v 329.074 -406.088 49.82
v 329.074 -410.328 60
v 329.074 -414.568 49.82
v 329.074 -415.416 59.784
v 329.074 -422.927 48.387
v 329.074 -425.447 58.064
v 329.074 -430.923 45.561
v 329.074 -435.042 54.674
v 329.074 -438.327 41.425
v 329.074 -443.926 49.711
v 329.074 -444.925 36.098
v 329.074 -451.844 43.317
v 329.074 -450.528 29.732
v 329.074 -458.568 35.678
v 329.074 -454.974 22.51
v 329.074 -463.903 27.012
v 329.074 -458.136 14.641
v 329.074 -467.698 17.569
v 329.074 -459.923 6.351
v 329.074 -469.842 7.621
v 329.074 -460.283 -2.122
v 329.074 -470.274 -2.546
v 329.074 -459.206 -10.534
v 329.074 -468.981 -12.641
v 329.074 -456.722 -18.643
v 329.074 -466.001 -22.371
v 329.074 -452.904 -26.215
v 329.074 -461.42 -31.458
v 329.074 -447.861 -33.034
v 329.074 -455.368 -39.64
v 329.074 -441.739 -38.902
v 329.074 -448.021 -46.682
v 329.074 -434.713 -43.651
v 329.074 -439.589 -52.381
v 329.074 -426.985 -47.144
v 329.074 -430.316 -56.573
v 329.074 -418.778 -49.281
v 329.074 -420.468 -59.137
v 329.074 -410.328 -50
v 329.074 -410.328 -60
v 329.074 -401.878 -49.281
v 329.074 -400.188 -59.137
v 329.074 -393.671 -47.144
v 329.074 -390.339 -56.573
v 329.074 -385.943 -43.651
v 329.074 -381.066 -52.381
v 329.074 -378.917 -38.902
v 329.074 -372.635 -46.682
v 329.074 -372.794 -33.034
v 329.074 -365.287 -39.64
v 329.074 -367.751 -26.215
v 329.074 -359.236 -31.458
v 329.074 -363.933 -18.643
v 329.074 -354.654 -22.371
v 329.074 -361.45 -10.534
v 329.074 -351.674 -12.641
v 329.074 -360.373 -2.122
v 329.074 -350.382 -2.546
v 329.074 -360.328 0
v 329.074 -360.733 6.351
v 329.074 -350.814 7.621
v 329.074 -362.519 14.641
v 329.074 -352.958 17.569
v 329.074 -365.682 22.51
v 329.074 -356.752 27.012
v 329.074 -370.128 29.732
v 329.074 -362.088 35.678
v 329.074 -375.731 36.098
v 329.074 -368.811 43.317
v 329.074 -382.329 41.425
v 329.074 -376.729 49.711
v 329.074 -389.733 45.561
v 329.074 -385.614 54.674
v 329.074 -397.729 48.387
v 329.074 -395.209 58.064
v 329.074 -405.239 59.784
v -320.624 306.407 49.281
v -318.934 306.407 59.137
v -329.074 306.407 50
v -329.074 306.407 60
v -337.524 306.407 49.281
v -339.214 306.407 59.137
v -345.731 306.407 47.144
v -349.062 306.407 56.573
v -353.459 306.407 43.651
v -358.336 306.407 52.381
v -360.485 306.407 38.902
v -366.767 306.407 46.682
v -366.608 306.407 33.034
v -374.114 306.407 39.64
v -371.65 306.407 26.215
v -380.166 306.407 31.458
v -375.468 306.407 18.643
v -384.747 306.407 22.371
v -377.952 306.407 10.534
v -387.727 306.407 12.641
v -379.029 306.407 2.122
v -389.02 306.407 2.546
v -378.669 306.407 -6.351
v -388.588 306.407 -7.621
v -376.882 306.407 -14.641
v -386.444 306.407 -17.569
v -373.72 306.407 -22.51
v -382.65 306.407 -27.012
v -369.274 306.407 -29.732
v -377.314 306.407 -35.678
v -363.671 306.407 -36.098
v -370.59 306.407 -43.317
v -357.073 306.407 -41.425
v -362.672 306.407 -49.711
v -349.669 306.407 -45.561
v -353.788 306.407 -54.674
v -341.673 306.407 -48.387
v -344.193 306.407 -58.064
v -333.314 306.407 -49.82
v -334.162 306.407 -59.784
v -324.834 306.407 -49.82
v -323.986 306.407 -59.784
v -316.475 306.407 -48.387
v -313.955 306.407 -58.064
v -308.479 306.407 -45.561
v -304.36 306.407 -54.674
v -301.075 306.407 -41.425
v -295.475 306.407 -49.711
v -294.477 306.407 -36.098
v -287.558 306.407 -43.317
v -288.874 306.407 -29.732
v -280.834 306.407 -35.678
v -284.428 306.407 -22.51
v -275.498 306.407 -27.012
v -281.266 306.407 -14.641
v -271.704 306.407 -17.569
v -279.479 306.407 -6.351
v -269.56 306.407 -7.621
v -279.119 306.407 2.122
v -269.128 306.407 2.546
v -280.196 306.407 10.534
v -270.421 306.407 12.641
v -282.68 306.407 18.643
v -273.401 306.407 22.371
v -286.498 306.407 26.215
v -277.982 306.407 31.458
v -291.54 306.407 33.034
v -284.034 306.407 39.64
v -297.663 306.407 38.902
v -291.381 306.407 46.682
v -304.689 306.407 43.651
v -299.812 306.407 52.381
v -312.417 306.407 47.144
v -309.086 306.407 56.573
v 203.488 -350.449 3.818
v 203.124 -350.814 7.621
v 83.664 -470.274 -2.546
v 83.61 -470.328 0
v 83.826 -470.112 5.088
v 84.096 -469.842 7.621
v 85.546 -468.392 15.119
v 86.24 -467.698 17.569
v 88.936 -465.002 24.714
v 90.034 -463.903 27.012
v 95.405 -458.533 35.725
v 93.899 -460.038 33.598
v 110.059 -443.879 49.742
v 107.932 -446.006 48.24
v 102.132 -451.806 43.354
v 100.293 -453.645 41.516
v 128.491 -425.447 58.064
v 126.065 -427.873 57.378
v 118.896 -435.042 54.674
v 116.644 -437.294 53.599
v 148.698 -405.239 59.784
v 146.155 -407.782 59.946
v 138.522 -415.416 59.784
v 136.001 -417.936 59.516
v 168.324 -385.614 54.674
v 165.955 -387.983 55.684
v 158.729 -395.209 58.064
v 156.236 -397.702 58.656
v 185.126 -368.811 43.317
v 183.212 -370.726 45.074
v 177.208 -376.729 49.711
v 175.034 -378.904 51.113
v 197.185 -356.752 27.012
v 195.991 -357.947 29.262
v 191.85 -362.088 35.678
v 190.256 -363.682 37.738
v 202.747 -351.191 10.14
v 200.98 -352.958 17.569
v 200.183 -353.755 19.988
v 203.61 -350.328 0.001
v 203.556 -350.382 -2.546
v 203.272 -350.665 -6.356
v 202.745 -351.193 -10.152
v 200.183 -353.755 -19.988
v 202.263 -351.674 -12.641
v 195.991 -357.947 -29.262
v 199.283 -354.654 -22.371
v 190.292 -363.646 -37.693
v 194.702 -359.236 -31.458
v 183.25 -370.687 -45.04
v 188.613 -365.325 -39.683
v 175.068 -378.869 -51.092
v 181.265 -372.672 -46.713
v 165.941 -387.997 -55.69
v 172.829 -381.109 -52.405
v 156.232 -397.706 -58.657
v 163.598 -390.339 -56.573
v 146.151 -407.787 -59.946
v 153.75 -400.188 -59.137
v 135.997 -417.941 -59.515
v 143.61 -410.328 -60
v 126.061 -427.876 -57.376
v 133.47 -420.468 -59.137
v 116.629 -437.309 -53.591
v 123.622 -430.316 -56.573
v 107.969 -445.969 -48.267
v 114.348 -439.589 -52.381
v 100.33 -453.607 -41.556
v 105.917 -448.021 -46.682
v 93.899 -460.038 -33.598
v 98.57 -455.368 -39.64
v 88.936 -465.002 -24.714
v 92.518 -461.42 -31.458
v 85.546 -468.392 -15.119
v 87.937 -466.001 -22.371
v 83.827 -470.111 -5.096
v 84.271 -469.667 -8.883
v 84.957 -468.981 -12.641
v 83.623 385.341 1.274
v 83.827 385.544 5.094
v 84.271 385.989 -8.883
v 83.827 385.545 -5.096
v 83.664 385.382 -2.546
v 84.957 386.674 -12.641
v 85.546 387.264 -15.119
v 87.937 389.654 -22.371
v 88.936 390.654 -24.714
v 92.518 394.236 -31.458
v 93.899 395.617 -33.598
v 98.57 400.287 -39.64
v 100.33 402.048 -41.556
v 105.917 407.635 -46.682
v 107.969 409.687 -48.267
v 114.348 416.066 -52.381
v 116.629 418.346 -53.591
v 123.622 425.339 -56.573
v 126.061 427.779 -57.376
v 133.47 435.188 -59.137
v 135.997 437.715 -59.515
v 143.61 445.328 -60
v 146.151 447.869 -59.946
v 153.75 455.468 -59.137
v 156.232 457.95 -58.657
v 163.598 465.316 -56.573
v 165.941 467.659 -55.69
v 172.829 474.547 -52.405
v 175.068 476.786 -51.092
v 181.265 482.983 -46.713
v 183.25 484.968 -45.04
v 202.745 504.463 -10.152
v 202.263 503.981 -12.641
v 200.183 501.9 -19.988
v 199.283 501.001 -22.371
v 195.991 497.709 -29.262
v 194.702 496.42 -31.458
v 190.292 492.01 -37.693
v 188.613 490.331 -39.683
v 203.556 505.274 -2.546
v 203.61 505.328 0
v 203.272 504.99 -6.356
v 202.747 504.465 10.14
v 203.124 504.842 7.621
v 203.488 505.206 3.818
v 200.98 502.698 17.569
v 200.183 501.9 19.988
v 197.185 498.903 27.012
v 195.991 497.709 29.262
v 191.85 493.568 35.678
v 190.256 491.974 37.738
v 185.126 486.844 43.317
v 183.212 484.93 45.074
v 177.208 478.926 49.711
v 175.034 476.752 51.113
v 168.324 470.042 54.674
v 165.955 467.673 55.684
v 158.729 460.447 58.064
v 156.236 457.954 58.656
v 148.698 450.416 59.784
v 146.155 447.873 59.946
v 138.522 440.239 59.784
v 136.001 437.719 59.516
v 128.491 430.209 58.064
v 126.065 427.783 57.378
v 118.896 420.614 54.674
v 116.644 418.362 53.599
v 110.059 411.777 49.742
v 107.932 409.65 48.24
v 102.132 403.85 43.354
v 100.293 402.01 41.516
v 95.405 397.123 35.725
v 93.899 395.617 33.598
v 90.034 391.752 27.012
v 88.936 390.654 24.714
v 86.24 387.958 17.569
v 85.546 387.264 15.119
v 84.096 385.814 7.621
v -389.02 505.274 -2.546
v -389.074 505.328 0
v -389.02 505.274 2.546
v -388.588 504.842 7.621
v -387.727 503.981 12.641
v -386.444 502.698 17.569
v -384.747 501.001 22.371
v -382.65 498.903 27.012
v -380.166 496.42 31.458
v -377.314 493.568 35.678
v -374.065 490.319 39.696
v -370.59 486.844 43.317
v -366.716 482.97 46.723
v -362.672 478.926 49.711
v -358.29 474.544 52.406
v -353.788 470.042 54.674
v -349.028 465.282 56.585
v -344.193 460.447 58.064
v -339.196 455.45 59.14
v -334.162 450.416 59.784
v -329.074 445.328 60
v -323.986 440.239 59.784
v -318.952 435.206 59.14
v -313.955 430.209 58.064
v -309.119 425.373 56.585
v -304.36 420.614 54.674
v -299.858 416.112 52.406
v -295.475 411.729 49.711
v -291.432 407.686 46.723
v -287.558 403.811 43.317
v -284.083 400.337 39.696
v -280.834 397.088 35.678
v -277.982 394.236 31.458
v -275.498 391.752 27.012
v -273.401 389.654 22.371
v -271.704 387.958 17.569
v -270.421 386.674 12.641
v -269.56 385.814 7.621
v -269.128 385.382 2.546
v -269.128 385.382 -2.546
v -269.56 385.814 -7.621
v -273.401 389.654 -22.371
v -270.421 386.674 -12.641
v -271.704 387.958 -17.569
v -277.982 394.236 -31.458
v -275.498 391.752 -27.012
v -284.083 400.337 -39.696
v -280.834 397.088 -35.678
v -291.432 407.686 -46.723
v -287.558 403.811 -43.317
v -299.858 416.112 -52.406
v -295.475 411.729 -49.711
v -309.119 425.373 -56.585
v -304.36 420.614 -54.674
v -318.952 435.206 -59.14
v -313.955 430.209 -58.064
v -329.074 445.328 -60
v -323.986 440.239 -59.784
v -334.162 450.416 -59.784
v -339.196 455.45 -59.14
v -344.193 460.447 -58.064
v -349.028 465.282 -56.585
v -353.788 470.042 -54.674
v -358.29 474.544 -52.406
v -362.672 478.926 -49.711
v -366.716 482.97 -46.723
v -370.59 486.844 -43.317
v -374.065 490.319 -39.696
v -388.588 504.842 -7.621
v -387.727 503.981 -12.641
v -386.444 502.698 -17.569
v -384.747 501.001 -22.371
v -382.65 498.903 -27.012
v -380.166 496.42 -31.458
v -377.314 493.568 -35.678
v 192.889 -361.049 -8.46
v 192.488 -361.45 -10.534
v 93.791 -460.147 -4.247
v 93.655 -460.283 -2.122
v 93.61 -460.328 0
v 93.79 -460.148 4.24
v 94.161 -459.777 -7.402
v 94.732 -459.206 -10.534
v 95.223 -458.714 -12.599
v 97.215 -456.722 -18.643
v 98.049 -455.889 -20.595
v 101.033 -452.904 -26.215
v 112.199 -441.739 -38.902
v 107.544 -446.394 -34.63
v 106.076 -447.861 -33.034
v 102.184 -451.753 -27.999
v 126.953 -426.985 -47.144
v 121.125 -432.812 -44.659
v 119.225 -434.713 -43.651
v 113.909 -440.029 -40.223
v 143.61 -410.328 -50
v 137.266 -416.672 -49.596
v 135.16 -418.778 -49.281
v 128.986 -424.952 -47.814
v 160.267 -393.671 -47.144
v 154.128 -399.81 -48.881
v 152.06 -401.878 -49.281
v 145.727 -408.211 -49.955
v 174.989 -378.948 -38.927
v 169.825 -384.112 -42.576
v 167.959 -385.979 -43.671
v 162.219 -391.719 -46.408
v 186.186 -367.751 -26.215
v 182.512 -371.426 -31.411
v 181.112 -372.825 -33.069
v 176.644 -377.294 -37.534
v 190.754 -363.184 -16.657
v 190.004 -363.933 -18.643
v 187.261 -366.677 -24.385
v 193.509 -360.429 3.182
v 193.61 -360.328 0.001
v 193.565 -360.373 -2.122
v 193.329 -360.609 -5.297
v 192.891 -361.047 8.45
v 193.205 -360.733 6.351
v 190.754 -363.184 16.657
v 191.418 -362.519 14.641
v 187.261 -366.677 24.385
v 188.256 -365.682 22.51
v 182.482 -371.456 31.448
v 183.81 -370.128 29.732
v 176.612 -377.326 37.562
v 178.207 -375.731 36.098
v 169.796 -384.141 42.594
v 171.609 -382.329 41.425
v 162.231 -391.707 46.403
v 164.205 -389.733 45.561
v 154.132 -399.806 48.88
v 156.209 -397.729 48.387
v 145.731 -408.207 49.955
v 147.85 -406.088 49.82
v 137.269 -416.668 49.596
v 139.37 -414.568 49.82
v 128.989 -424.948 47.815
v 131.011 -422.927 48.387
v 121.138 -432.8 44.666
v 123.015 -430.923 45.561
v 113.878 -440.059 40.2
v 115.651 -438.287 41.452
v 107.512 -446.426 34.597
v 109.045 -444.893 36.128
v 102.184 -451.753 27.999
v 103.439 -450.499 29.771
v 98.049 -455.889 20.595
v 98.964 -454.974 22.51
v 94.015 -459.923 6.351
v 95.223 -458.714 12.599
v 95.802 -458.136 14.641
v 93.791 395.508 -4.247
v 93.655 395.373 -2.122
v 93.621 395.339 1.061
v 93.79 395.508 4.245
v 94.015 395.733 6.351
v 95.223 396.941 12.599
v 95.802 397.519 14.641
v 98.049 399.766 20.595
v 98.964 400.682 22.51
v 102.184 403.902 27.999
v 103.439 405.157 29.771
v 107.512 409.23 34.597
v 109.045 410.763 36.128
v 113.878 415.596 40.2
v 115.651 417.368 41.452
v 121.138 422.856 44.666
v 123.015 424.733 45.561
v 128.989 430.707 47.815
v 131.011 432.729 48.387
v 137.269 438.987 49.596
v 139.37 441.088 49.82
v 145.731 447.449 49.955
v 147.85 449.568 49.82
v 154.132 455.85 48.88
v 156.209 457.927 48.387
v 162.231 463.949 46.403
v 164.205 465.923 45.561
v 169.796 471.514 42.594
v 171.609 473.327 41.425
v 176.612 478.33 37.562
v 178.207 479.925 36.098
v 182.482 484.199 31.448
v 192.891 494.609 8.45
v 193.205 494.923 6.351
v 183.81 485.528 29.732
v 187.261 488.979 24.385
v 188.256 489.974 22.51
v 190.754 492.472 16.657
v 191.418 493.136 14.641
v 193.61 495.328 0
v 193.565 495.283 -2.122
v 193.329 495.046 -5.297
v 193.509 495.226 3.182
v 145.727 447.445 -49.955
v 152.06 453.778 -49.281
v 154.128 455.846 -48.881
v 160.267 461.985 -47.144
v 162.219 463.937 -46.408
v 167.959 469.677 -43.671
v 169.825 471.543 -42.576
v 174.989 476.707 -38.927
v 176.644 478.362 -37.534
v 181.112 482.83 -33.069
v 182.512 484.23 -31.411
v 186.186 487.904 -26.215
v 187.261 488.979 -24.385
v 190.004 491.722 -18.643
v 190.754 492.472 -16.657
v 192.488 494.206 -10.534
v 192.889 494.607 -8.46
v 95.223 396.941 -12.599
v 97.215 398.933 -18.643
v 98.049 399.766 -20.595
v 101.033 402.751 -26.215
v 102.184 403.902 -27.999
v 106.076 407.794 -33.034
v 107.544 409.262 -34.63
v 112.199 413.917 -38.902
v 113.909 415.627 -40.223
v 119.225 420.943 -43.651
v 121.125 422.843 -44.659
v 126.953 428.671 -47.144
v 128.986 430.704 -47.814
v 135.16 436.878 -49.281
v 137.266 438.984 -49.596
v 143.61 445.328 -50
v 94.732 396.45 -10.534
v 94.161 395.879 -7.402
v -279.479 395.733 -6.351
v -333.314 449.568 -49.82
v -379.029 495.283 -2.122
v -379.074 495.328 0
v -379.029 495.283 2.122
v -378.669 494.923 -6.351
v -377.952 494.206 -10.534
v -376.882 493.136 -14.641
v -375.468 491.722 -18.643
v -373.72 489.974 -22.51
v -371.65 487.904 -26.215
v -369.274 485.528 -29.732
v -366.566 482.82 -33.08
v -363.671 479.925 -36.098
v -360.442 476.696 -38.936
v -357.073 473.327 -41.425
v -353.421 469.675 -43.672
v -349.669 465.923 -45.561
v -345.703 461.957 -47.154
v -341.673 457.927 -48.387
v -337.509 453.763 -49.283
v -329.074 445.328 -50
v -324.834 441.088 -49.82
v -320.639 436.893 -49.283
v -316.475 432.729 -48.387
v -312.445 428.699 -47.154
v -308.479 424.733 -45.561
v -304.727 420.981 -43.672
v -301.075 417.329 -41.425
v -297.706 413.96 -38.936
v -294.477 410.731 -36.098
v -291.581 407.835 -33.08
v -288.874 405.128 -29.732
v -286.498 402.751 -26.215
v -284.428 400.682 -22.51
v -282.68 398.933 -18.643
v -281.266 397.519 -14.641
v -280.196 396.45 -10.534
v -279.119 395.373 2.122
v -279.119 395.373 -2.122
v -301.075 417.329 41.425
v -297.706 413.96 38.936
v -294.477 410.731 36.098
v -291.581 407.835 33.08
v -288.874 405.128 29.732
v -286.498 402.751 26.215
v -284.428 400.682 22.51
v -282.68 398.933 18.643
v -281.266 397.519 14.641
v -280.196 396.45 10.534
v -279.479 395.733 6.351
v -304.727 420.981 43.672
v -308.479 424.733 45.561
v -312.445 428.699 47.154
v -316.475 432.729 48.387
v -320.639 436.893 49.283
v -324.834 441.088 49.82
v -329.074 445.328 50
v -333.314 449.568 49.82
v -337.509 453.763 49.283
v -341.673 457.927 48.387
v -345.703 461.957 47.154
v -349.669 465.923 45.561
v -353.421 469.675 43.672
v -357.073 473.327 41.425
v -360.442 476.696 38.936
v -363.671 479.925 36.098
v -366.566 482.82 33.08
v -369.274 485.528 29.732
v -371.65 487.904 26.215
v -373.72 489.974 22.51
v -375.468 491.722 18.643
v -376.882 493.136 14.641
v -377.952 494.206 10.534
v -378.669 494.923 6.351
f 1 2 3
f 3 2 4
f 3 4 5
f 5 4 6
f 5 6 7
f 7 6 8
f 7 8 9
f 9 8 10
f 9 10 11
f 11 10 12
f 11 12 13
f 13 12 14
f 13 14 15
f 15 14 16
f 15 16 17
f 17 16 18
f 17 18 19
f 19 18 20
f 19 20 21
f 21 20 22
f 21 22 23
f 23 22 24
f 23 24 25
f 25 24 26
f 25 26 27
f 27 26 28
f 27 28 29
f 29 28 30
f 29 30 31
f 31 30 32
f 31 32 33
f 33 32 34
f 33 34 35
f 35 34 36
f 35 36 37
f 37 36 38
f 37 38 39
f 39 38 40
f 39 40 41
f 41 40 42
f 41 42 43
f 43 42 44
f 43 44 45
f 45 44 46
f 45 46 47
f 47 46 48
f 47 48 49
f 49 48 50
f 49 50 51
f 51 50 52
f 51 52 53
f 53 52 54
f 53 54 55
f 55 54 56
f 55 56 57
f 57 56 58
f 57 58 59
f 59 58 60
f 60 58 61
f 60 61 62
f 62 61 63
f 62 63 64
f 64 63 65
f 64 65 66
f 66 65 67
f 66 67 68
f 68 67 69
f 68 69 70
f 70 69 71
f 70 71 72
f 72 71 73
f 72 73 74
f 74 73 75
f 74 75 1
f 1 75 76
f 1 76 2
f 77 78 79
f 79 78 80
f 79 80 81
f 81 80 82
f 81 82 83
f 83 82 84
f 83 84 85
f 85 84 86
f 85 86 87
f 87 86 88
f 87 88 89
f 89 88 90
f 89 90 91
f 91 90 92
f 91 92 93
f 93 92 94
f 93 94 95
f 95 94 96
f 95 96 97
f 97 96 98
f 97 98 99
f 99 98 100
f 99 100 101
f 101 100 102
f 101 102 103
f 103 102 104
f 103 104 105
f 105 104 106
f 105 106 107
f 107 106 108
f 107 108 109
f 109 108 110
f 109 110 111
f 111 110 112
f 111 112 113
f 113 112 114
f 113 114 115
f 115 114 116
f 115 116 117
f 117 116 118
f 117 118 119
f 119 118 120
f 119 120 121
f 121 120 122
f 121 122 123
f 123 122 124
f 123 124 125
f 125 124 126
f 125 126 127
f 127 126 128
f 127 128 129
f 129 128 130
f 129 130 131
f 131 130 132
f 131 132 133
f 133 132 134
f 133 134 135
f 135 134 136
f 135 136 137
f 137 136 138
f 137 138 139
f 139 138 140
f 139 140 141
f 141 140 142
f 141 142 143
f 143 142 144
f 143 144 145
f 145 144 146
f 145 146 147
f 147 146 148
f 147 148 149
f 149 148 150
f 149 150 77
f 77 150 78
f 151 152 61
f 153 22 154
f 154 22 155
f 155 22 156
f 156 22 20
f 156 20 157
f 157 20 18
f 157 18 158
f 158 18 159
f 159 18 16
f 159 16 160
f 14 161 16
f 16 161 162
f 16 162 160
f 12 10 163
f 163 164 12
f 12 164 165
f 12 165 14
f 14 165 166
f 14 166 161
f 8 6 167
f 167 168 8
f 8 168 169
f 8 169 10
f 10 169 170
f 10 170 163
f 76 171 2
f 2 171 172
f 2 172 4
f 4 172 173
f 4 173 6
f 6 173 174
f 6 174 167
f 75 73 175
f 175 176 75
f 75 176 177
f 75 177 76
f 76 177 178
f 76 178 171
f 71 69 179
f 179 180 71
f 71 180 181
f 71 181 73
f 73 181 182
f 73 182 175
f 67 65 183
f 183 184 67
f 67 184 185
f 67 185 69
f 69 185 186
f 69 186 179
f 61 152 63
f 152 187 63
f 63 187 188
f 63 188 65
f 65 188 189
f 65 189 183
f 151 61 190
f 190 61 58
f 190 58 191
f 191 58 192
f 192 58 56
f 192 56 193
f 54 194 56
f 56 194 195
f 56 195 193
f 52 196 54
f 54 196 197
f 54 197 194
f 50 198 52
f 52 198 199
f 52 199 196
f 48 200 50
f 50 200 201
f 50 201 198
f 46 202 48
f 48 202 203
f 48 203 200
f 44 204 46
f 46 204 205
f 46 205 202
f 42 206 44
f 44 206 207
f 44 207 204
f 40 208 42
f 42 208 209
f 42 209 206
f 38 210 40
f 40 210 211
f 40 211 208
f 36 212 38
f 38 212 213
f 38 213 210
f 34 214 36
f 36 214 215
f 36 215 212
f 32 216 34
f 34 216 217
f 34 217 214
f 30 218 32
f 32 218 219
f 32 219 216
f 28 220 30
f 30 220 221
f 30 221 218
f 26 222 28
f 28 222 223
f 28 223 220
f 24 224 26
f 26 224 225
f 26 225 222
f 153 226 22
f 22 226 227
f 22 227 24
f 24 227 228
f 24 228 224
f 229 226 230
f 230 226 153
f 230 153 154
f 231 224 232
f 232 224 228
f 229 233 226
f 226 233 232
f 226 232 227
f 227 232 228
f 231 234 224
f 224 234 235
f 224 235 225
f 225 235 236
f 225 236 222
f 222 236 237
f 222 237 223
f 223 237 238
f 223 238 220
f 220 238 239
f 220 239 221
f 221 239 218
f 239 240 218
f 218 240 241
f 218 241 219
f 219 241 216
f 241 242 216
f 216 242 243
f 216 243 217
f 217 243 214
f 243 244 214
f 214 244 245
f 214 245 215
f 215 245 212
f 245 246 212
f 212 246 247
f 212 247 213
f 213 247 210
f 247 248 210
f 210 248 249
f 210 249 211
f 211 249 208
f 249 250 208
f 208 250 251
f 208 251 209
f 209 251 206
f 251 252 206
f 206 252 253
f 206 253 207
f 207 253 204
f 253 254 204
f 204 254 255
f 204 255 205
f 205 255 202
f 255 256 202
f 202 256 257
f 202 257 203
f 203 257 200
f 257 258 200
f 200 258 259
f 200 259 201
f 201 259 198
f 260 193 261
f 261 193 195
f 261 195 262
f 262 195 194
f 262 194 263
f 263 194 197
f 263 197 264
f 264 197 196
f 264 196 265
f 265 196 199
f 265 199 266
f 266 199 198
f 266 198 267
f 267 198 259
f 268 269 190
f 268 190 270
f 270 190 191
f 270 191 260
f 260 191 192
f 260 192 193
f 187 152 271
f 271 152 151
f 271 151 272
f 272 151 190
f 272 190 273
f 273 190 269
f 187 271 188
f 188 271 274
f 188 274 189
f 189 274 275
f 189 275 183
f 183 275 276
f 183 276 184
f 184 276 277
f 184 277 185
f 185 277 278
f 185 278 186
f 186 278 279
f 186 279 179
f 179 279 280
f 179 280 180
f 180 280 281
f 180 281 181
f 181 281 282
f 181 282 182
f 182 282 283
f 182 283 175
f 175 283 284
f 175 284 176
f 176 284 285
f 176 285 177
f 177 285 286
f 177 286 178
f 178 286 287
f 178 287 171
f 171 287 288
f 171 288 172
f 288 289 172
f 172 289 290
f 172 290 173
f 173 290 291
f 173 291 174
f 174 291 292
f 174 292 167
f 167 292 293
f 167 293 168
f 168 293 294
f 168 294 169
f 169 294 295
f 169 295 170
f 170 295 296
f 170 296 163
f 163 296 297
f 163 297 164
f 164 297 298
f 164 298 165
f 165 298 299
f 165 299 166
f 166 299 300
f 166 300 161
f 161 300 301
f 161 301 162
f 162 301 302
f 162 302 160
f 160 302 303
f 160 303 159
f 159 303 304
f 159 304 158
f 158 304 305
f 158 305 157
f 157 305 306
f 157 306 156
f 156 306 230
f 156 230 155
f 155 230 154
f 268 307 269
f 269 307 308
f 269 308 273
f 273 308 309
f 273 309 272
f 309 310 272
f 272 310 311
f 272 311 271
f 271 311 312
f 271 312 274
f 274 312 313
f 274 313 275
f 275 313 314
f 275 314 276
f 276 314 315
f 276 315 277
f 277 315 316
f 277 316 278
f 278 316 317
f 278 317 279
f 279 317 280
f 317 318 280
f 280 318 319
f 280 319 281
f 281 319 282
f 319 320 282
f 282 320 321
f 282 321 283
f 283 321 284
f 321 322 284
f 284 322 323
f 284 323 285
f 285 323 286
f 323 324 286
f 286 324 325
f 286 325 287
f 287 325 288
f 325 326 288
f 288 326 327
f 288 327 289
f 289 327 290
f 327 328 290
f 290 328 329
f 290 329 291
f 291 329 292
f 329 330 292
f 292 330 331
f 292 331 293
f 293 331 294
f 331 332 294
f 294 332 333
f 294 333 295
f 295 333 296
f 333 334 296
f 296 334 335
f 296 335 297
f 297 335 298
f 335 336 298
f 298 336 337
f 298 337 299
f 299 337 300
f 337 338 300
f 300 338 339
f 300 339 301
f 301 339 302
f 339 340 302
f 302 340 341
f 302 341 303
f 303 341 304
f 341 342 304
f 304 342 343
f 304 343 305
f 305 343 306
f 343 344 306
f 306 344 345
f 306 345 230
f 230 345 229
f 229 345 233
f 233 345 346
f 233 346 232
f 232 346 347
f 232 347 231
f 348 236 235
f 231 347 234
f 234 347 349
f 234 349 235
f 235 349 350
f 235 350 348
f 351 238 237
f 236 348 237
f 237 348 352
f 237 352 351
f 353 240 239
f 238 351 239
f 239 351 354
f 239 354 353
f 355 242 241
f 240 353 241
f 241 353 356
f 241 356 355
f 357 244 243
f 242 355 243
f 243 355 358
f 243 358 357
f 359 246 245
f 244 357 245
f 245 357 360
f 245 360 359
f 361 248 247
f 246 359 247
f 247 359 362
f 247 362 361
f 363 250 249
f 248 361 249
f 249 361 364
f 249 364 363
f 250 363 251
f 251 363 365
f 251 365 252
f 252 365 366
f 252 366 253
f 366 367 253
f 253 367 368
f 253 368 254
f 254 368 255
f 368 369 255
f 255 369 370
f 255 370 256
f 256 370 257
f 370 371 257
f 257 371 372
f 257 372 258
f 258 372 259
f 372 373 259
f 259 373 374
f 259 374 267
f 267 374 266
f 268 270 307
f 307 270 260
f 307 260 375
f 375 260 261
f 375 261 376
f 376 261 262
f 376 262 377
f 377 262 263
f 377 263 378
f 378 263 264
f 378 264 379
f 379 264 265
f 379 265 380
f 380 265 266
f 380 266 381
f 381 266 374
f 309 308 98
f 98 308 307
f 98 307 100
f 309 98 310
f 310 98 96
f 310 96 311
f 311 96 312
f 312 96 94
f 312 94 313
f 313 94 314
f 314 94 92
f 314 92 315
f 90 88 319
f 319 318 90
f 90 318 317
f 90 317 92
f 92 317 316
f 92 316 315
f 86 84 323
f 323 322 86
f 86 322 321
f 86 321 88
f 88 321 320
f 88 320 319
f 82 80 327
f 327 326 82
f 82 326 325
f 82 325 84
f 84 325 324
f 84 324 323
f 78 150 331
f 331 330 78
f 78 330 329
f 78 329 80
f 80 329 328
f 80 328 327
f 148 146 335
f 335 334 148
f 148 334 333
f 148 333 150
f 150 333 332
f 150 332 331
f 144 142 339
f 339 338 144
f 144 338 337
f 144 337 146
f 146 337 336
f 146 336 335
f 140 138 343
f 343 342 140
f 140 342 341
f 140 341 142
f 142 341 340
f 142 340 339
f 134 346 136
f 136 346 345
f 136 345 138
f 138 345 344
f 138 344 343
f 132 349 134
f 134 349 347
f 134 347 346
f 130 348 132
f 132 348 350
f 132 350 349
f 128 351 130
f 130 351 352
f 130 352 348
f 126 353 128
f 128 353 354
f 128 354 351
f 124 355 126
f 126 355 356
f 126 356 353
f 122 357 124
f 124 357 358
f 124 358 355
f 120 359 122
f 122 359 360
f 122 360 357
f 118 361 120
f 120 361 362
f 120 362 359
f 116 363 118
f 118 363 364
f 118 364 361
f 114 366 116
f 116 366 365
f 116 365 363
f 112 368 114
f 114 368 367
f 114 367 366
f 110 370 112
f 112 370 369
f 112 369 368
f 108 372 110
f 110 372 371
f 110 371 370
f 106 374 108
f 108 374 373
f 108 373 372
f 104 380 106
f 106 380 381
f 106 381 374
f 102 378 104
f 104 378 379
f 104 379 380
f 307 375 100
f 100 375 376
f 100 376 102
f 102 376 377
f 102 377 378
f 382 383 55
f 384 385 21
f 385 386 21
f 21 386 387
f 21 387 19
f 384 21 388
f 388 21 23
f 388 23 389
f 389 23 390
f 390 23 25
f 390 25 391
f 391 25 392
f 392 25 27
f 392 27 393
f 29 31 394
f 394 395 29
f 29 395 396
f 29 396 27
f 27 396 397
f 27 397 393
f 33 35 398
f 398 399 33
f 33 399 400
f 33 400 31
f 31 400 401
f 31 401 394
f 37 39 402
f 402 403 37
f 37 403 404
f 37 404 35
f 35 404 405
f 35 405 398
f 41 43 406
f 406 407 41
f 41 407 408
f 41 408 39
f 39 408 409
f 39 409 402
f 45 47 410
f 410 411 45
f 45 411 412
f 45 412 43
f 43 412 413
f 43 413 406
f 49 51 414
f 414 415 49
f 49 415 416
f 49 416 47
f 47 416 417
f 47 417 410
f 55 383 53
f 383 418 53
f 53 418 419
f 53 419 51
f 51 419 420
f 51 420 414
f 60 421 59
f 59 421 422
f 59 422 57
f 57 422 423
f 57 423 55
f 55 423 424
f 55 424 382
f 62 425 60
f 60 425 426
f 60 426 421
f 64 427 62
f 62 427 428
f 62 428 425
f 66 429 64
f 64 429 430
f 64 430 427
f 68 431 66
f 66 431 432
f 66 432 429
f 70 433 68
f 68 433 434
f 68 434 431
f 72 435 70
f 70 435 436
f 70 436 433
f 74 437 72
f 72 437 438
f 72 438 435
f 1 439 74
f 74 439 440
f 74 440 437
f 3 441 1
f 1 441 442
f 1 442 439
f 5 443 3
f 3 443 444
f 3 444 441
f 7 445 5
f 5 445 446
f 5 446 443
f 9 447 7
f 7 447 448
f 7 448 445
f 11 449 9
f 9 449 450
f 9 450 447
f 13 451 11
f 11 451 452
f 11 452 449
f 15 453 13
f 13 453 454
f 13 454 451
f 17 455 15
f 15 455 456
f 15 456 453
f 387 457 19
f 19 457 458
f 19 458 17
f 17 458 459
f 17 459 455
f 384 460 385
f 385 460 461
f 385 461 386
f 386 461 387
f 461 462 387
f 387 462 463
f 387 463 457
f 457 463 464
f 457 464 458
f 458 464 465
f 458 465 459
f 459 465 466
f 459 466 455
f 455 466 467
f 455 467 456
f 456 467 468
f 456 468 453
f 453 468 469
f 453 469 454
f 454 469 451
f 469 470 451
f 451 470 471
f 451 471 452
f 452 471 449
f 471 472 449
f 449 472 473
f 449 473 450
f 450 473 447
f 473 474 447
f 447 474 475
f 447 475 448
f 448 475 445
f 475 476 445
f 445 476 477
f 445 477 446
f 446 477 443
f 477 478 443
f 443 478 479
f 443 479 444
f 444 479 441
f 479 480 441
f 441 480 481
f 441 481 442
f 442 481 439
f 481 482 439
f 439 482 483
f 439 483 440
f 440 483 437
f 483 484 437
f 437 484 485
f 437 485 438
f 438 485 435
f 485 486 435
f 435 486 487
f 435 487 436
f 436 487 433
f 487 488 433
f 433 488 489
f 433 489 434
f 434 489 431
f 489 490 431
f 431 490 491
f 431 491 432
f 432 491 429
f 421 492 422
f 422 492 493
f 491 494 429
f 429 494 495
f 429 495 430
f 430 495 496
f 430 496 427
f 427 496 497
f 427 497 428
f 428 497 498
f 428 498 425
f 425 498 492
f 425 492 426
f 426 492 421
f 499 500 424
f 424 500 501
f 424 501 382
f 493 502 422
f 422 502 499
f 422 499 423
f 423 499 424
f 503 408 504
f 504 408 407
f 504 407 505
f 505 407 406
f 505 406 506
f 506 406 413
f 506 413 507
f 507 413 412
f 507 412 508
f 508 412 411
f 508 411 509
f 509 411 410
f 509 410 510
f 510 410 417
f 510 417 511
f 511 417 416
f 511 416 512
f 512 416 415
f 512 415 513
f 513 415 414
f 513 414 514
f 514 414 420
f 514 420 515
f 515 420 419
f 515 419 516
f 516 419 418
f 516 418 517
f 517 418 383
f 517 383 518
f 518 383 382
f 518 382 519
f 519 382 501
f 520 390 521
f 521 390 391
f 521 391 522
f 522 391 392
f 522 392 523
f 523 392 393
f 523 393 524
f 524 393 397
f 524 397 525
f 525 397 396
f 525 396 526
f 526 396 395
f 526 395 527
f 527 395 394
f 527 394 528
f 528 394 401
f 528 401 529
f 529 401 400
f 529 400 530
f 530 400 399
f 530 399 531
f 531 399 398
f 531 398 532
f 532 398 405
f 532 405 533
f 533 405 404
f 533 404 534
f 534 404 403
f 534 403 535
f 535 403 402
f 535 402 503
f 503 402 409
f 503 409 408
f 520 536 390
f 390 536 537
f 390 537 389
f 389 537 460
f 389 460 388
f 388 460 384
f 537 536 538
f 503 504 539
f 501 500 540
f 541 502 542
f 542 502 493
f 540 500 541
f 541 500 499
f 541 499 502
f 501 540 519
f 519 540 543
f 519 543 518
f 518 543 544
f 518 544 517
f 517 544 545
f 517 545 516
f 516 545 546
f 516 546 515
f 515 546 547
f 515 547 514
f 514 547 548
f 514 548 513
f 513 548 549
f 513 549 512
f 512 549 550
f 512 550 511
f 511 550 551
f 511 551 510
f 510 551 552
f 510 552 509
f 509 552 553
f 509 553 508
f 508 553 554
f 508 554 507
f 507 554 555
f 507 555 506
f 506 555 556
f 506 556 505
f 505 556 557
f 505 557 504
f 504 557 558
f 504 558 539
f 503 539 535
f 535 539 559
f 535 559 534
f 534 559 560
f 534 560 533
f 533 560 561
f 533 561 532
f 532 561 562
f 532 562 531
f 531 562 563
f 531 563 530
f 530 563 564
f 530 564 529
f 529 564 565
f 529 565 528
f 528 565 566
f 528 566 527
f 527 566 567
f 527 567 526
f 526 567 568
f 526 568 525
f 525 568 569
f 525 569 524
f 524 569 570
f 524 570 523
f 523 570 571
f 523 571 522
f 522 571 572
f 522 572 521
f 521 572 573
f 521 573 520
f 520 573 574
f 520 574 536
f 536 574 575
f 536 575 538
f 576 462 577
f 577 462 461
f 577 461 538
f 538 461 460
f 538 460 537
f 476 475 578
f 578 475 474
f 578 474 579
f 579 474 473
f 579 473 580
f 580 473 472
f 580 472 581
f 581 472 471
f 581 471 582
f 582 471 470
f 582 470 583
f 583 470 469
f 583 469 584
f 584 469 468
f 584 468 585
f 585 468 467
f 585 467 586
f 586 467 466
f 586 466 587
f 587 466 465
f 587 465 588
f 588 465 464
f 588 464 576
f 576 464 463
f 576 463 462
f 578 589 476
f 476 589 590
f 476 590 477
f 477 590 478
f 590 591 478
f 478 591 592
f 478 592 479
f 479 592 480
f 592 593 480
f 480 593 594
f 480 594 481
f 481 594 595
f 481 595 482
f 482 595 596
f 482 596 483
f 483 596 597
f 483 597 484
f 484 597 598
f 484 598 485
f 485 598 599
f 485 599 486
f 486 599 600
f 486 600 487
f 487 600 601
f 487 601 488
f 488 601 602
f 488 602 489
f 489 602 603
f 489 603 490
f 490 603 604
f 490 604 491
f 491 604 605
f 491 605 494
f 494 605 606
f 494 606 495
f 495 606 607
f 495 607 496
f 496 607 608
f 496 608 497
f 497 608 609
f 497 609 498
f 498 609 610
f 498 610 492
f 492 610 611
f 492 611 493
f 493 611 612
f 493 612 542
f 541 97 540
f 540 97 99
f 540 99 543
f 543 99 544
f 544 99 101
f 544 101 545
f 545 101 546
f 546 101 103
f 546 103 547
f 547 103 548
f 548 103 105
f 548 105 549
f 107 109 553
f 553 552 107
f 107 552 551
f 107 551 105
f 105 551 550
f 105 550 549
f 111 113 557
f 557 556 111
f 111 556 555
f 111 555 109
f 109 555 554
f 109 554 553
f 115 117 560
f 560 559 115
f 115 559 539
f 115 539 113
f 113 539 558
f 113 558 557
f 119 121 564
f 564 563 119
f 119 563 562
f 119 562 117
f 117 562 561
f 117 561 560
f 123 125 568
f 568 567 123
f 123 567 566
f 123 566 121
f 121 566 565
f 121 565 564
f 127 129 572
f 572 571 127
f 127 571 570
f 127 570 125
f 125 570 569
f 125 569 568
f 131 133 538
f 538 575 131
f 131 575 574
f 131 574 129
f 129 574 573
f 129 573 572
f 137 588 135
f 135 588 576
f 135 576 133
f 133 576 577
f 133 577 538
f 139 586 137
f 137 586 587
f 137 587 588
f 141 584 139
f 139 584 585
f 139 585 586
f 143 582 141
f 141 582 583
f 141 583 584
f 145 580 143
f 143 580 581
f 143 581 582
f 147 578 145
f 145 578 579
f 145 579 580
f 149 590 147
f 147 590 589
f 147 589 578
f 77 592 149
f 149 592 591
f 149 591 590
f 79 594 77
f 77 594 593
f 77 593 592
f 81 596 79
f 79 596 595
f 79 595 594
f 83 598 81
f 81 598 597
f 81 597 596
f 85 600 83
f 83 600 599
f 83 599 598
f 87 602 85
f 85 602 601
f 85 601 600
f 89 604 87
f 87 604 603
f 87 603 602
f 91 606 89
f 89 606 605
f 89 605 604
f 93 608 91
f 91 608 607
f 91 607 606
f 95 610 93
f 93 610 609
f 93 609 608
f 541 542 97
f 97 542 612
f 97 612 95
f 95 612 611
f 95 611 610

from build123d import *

# Parameters (mm, degrees)
SKETCH8_R   = 60
SKETCH8_R_2 = 50


with BuildPart() as part:
    # Sweep-Thin1: sweep along a path in Sketch1
    with BuildLine(Plane.XY) as sweep_thin1_path:
        Line((-329.073983606, 306.407118431), (-329.073983606, 445.327817433))
        Line((-329.073983606, 445.327817433), (143.609908522, 445.327817433))
        Line((143.609908522, 445.327817433), (143.609908522, -410.327817433))
        Line((143.609908522, -410.327817433), (329.073983606, -410.327817433))
    # Sketch8 → Sweep-Thin1 (sweep)
    with BuildSketch(Plane(origin=(0, 306.407118431, 0), x_dir=(1, 0, 0), z_dir=(0, 1, 0))):
        with Locations((-329.073983606, 0)):
            Circle(SKETCH8_R)
        with Locations((-329.073983606, 0)):
            Circle(SKETCH8_R_2, mode=Mode.SUBTRACT)
    sweep(path=sweep_thin1_path.line, transition=Transition.RIGHT)


solid = part.part
